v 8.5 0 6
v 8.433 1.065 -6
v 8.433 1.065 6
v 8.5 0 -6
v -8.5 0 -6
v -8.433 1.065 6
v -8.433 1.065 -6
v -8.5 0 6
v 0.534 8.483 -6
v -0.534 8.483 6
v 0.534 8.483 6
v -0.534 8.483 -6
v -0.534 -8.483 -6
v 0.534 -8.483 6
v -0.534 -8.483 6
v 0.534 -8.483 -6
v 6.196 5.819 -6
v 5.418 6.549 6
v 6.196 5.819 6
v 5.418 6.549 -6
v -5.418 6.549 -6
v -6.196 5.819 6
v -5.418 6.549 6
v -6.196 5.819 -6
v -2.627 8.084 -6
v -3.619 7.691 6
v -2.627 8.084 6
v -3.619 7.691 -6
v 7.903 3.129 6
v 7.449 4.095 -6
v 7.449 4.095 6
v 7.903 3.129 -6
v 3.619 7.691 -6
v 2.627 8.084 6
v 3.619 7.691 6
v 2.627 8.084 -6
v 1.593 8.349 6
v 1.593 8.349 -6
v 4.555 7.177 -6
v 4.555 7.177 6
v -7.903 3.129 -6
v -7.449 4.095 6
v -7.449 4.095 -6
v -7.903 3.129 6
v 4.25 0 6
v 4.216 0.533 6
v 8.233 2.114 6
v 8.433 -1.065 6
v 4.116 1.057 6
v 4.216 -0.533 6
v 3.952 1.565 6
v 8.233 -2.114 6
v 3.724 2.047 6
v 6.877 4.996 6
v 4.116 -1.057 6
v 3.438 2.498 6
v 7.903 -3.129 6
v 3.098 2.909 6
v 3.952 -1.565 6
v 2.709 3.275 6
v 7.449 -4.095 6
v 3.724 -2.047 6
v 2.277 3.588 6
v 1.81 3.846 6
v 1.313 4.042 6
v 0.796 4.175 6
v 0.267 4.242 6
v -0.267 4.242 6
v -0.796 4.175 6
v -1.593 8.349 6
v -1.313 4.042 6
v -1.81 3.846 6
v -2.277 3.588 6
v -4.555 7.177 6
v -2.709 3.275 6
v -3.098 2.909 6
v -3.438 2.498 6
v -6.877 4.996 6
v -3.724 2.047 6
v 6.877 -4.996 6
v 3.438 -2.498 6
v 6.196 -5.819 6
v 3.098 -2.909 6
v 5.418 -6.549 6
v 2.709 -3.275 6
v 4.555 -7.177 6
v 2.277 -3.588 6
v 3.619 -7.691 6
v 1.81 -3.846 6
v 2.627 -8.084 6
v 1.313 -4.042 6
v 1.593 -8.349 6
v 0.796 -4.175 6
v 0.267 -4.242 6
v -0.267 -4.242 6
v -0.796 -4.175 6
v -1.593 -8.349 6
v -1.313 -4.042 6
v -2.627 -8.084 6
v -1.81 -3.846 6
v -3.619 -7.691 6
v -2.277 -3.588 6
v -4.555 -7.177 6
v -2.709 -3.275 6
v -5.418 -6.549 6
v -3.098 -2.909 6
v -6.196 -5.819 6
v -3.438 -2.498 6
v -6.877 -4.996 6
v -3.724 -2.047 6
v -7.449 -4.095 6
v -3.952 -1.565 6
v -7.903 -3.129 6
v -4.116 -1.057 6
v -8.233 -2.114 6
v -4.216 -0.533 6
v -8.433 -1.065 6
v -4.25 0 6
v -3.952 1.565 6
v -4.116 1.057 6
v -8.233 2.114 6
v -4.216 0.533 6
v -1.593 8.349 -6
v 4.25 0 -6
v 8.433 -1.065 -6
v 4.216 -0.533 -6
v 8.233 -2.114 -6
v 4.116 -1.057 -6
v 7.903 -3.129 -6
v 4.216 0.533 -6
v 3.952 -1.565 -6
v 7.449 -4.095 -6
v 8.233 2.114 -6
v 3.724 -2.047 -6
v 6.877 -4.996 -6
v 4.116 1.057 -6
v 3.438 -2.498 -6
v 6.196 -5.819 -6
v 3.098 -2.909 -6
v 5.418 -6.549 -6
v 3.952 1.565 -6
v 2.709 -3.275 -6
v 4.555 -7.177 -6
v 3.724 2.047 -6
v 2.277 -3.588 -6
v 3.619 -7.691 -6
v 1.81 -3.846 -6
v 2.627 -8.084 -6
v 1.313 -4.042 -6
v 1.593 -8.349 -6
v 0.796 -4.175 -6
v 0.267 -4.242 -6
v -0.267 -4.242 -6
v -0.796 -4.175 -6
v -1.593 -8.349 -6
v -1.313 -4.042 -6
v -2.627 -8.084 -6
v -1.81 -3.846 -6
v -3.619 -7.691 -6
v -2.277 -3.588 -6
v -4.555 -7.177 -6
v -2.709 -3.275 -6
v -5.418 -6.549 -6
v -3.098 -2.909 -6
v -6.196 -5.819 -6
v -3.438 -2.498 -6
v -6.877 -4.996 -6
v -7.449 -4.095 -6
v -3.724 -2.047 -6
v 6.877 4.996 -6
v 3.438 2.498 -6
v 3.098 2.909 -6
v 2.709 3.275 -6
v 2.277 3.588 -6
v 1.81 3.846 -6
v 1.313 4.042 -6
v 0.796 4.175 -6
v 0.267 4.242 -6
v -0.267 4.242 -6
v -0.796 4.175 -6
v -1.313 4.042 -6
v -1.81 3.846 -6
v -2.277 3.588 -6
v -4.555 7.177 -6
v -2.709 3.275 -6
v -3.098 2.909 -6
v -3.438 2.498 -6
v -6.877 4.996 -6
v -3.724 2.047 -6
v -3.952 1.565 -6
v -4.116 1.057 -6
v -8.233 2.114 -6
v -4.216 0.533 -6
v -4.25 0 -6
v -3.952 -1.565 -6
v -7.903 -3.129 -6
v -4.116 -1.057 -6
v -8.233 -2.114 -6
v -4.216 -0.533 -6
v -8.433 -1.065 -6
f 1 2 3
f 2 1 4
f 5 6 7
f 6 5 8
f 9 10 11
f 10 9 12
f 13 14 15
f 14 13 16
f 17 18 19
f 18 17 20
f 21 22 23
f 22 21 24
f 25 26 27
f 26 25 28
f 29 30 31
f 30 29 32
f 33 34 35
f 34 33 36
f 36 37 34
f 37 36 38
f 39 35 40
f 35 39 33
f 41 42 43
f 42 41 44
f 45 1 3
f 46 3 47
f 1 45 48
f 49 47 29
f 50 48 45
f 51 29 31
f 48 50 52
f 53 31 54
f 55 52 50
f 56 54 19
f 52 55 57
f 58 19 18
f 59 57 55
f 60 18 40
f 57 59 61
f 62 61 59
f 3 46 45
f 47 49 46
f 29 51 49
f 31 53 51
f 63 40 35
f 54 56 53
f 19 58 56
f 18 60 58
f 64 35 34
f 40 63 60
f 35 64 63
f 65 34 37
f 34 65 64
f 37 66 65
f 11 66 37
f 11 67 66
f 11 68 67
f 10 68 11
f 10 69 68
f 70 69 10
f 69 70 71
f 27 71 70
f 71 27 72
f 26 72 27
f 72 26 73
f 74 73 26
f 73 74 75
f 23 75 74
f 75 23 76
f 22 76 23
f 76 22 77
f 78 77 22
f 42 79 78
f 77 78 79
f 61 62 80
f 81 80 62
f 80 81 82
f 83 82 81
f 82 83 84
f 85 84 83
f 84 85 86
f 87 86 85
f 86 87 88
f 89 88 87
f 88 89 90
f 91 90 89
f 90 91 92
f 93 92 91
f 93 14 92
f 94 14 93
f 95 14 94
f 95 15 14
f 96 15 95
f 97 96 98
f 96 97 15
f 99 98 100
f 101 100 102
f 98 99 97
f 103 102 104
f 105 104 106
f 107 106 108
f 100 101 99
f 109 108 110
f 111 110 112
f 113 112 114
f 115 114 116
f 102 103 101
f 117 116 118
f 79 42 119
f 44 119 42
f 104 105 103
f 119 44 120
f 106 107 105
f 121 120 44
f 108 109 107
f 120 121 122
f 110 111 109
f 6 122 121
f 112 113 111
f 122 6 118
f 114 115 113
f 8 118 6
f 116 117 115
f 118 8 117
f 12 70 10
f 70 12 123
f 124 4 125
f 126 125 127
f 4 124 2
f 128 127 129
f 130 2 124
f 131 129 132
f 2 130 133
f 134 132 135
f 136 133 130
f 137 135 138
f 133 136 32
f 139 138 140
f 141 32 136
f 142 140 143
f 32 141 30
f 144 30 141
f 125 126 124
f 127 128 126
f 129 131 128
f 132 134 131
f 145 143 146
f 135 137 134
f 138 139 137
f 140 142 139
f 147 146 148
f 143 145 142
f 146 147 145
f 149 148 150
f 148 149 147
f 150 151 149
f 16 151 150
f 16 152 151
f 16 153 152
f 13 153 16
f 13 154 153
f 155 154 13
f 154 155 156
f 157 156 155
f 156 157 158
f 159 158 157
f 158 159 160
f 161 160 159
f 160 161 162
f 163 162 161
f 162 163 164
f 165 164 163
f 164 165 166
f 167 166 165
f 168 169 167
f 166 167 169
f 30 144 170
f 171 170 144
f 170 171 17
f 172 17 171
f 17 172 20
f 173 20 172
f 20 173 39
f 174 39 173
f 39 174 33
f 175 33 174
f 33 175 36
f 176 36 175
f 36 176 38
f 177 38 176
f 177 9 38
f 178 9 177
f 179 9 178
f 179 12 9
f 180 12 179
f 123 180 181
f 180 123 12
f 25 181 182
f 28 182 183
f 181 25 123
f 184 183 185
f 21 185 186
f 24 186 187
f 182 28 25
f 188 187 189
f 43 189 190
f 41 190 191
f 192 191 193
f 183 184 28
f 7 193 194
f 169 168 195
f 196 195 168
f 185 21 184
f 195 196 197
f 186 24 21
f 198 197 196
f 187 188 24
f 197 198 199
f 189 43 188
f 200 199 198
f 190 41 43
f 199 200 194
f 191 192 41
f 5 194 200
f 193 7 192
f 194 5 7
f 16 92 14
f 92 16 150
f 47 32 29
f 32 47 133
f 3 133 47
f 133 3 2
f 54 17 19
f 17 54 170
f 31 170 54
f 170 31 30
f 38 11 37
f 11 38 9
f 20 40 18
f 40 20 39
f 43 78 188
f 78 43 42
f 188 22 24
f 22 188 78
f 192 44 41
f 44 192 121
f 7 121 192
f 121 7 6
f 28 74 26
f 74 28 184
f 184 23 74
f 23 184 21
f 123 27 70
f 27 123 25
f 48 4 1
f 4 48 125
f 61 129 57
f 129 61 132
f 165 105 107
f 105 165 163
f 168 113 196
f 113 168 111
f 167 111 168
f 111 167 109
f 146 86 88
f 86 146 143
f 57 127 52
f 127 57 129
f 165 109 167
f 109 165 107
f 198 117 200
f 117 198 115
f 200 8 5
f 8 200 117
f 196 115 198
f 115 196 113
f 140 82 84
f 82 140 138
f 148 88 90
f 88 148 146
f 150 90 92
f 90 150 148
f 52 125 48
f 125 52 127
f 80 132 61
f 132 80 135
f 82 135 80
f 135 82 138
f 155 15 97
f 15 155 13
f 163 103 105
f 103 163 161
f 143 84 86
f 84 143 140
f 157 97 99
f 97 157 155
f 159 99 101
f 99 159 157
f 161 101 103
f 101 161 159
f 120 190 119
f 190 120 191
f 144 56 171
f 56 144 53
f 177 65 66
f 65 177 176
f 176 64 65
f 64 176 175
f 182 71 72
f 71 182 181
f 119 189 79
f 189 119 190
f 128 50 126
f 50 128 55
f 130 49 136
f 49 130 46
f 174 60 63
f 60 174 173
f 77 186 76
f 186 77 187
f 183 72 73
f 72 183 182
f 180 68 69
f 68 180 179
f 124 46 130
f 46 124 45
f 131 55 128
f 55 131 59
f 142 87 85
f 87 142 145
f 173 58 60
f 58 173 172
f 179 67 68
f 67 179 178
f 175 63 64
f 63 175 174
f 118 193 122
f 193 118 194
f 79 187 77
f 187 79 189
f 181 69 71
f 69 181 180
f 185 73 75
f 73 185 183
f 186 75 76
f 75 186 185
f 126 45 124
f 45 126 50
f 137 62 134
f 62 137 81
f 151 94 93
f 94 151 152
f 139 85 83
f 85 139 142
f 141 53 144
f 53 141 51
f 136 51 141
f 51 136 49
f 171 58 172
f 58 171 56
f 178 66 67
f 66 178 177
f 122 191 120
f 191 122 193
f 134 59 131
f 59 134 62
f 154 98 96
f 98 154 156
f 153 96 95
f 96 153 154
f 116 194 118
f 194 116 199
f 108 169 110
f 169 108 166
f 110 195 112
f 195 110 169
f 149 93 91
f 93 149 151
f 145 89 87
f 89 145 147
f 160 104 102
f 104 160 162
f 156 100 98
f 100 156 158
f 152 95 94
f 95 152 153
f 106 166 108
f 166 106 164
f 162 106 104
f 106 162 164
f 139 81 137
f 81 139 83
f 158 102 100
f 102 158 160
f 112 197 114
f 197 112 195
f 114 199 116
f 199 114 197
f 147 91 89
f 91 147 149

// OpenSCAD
$fn = 50;


difference() {
	union() {
		translate(v = [0, 0, -6.0000000000]) {
			cylinder(h = 12, r = 8.5000000000);
		}
	}
	union() {
		translate(v = [0, 0, -100.0000000000]) {
			cylinder(h = 200, r = 4.2500000000);
		}
	}
}
